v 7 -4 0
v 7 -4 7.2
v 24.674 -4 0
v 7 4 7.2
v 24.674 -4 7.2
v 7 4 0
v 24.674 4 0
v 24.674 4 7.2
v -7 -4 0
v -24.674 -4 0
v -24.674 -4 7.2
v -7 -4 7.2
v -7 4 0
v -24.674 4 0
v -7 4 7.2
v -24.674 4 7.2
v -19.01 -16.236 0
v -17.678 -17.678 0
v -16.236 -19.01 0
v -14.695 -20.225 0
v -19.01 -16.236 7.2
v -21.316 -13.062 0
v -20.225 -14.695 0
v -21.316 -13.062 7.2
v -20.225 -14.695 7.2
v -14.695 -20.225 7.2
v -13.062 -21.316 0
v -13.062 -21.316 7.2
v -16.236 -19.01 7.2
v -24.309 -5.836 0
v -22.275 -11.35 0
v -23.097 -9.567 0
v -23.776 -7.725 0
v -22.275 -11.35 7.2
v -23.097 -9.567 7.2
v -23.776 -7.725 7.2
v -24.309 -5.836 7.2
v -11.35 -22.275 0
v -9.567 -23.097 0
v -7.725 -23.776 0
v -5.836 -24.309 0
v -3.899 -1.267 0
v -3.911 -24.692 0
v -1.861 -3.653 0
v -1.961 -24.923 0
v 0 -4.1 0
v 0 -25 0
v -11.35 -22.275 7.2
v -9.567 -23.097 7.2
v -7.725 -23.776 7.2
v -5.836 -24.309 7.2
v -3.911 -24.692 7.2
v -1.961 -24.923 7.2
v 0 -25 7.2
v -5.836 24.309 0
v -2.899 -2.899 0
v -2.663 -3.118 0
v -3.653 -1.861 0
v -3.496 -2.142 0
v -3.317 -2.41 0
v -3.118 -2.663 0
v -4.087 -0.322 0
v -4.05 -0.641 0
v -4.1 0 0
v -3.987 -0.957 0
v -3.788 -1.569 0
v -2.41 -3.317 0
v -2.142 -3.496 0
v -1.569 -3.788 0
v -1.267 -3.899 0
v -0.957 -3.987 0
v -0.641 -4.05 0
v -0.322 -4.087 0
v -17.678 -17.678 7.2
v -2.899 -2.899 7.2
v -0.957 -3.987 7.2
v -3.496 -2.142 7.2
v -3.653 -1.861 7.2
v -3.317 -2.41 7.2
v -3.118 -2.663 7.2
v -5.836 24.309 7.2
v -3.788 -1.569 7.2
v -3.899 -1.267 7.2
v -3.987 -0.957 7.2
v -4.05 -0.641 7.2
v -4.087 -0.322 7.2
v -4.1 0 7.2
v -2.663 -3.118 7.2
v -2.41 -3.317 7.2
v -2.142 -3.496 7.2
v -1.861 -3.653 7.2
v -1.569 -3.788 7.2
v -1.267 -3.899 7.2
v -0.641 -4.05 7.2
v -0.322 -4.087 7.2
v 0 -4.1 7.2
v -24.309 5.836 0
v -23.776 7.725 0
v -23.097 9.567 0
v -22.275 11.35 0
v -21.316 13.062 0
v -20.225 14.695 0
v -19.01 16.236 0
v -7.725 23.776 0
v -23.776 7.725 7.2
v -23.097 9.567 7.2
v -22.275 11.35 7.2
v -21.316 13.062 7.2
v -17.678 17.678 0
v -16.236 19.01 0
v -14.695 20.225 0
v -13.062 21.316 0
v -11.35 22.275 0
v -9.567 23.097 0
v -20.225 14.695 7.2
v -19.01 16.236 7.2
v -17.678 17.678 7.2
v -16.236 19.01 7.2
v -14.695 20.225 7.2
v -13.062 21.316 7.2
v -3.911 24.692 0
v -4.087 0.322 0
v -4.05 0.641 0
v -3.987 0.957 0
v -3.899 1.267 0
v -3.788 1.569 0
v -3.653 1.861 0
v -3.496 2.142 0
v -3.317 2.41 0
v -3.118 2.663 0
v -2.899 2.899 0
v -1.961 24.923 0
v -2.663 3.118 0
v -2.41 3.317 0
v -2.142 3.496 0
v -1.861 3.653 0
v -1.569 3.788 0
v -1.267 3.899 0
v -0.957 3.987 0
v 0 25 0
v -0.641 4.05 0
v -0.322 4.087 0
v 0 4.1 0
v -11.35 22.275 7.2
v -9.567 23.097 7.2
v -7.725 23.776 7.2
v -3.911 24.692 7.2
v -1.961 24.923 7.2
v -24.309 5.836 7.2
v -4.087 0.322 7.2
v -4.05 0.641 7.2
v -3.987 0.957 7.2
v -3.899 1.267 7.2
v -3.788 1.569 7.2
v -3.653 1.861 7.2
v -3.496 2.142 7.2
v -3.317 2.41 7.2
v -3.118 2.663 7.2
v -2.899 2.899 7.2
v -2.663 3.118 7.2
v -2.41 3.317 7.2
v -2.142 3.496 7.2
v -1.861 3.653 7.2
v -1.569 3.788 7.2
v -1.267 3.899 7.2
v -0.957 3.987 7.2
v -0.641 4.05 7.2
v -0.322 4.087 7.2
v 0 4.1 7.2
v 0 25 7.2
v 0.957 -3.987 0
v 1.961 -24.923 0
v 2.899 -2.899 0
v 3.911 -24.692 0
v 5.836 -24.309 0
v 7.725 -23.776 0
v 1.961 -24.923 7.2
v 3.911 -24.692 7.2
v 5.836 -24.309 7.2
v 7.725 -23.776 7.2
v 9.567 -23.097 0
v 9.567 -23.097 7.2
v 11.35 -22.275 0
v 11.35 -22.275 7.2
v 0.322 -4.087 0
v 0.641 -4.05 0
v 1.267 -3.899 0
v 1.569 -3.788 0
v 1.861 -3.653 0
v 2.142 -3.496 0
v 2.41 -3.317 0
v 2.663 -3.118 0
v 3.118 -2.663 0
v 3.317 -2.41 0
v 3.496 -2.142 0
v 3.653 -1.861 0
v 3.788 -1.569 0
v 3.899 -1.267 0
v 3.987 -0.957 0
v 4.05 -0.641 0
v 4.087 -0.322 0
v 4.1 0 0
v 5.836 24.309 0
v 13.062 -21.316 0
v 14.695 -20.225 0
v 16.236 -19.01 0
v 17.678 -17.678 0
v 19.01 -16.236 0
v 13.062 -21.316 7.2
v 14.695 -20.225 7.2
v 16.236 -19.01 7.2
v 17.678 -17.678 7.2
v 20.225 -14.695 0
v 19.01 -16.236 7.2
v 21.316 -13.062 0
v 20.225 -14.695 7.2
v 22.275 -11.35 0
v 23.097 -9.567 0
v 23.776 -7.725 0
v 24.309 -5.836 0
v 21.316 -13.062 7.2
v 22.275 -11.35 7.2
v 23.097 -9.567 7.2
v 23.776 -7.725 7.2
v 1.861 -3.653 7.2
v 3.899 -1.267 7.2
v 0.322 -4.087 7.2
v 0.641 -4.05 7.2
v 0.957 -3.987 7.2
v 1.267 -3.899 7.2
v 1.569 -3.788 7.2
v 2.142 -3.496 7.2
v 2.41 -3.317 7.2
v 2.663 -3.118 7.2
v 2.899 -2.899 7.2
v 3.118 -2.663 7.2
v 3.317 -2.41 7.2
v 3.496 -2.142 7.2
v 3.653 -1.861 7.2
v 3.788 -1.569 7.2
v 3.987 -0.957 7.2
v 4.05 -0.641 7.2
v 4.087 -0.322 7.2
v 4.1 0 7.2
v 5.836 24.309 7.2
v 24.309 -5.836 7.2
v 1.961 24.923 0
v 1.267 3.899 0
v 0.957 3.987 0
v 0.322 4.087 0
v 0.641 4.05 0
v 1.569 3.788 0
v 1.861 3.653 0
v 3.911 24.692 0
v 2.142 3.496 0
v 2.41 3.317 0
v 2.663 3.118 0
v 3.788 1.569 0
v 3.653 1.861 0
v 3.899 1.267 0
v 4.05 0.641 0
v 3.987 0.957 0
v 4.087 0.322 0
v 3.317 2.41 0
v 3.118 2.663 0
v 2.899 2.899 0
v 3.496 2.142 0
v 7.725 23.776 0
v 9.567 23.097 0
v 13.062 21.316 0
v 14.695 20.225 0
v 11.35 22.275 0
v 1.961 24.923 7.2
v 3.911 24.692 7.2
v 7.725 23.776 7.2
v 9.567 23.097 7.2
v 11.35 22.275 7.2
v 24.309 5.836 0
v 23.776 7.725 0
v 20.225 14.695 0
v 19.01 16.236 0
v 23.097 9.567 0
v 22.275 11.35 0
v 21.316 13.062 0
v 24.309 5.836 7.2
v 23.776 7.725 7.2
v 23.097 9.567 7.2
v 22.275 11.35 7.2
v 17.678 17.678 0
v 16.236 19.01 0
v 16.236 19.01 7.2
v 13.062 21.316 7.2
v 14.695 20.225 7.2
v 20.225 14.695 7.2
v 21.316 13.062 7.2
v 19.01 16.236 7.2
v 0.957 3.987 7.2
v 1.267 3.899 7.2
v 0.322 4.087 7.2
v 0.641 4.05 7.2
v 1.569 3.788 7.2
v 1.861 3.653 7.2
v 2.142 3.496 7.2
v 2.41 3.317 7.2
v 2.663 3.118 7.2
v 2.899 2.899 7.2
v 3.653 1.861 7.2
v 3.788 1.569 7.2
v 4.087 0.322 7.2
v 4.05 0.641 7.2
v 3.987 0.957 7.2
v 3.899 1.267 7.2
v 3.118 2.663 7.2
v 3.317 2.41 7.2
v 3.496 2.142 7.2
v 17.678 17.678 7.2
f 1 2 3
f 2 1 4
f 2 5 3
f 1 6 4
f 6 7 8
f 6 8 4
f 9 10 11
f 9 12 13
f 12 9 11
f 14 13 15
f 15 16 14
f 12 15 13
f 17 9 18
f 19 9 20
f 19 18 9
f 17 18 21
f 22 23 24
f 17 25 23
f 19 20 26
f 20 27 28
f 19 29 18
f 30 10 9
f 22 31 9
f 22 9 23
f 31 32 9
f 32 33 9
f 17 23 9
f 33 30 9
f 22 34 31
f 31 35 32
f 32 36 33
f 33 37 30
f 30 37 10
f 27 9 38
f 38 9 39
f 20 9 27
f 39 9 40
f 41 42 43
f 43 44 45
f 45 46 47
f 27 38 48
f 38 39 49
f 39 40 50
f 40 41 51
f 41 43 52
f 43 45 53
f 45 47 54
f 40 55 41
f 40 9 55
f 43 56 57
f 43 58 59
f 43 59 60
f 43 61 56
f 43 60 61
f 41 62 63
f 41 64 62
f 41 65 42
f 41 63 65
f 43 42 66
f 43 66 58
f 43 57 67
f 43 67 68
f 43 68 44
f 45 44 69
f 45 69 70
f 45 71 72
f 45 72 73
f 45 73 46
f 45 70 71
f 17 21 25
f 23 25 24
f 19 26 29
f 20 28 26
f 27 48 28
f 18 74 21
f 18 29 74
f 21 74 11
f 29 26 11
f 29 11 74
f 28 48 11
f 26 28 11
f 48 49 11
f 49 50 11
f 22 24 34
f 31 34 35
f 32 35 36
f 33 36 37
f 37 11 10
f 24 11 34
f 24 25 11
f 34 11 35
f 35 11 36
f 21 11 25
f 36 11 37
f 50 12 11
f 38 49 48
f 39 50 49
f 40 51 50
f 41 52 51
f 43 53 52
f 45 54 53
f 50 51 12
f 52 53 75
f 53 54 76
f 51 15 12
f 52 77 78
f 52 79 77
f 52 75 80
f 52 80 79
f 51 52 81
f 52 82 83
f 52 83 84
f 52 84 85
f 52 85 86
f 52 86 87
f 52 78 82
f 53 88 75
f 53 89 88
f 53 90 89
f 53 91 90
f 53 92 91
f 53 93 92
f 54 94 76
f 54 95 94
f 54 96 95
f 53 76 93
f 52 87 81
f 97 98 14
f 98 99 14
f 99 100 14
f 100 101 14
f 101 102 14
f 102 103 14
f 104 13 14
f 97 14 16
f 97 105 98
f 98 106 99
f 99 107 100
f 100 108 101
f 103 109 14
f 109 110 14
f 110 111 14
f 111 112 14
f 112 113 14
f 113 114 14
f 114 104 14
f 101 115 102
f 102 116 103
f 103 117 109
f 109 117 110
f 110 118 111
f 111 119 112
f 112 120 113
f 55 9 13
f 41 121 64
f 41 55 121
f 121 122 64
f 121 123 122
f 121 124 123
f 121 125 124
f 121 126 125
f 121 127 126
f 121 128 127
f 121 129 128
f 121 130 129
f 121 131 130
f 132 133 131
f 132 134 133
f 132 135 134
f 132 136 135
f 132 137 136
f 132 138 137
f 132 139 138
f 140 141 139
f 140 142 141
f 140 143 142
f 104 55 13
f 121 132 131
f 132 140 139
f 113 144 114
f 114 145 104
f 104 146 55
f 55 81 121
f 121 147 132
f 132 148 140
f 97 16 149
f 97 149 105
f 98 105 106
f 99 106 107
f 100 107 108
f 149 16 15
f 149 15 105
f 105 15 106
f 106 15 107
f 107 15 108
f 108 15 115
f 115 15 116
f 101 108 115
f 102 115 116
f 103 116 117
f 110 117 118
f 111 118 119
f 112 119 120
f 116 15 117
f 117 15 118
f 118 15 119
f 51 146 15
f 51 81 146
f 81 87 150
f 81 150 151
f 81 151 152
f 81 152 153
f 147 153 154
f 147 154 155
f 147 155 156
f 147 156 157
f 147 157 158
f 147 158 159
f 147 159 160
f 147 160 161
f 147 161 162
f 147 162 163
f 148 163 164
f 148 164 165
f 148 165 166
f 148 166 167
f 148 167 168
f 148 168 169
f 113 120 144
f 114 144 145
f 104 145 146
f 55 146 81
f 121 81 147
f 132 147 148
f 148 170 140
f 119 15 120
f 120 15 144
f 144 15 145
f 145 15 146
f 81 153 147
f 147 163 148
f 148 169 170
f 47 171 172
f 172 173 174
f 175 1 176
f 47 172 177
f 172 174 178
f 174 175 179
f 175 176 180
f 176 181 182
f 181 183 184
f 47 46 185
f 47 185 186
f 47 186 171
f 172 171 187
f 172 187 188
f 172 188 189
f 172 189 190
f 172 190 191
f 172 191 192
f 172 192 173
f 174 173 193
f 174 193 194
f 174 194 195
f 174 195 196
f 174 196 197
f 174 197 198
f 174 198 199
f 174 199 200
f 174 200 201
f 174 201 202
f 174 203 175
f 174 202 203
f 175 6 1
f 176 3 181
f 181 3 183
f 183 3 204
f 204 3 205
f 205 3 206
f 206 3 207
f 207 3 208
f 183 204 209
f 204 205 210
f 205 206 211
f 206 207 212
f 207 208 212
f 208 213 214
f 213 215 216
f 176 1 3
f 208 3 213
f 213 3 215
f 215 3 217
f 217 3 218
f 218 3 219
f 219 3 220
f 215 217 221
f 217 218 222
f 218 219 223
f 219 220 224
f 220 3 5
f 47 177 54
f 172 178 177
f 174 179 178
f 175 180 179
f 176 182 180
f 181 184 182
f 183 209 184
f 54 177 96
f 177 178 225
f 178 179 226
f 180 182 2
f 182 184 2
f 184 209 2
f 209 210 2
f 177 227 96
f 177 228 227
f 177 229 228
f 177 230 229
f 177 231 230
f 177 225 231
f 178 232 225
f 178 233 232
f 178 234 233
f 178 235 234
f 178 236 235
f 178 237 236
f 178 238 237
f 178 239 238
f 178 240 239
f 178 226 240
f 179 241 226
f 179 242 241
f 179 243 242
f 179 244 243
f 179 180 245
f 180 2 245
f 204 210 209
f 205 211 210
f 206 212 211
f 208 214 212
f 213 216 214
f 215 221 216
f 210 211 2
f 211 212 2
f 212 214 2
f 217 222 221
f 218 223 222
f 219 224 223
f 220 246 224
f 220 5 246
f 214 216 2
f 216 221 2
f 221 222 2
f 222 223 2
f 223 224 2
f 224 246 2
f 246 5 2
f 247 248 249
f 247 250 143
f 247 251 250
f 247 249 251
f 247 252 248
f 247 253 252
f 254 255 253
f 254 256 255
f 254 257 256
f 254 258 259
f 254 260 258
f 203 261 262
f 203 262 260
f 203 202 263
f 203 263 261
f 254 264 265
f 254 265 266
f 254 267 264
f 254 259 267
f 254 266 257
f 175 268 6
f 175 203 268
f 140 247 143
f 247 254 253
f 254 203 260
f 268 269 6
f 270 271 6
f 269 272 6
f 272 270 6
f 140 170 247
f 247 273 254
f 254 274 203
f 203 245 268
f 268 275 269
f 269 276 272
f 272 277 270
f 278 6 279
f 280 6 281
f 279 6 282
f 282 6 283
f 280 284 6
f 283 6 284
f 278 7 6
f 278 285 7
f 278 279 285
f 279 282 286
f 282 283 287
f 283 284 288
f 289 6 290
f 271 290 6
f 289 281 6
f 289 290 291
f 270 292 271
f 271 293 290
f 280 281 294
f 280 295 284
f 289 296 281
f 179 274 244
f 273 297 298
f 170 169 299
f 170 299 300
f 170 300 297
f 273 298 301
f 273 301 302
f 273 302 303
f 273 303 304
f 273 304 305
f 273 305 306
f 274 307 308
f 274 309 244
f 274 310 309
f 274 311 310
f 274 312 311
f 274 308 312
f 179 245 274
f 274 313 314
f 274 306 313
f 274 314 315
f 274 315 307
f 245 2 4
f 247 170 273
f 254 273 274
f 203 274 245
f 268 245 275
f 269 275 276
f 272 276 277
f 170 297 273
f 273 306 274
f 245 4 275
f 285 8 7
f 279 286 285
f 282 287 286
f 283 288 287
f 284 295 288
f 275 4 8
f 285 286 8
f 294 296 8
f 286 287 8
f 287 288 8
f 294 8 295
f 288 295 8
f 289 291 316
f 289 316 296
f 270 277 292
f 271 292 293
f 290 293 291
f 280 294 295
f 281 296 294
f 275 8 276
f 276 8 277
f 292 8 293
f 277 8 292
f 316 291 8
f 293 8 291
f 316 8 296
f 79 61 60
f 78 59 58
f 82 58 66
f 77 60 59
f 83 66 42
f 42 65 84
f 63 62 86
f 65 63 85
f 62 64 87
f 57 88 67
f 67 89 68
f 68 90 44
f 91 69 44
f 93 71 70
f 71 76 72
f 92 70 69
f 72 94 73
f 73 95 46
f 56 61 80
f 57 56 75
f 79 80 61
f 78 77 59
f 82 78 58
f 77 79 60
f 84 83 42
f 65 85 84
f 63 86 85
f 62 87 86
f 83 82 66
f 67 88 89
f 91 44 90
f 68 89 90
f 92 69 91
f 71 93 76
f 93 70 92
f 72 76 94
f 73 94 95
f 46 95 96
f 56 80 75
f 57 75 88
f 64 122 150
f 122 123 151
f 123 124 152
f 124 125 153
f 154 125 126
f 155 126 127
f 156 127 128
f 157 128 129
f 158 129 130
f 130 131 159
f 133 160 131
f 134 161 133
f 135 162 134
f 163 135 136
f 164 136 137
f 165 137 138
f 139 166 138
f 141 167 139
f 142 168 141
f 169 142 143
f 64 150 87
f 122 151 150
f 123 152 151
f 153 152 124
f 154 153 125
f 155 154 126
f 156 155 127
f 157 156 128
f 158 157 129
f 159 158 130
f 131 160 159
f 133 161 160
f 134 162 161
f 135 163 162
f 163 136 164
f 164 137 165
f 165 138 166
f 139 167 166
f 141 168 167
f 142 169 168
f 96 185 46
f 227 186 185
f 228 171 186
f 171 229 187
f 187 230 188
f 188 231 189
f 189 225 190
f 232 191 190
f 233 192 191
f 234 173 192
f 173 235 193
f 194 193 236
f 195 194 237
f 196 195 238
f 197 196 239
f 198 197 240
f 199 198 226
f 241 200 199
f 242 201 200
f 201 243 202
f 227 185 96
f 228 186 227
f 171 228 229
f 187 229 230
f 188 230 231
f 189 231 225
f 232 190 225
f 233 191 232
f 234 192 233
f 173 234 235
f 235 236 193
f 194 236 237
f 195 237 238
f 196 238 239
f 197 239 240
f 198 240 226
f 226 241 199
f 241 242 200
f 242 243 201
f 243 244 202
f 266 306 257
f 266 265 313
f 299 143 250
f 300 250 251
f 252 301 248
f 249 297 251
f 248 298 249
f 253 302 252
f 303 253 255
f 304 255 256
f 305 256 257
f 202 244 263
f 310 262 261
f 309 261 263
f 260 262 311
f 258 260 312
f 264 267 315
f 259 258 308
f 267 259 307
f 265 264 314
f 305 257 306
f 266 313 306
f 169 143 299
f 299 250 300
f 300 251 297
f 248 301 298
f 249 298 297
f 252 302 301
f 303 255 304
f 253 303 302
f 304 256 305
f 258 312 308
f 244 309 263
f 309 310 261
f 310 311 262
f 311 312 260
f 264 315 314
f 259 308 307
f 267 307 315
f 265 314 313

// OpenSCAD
// ==============================================================================
//   HUB DISC — optional VARIANT of the hub clamshell (hub.scad): the
//   tri's washer-jaw hub sized for the dual's two arms. Print ONE.
//
//   One spacer disc thinner than the rod, a slot per arm from the
//   boss circle to the rim, arms butted against the boss and proud
//   of both faces by half the clamp gap. Two M8 fender washers press
//   directly on the rods from either side, clamped by M8 nylocs on
//   the shaft's die-threaded top end. Load path steel washer,
//   aluminum rod, steel washer: no plastic in compression, so this
//   joint never needs the seasonal re-torque, and disc plus M8 stack
//   weigh about a third of the clamshell plus its five M5s.
//
//   The price is the one rod prep in the build: an M8x1.25 hand die
//   run hub_shaft_thread down the shaft top (8 mm rod is an M8
//   thread blank, the die self-aligns, still nothing drilled), and
//   an arm station about 27 mm lower on the same shaft, which the
//   stack has room for (geometry_check gates the collar room).
//   Assembly: lower nyloc and washer to a thread-gauge height, disc
//   and arms on, upper washer and nyloc, done — the slot flanks key
//   the arms, the washers grip them.
//
//   Prints flat on its face in minutes: bore and slots are vertical
//   walls, no bridges, no supports.
// ==============================================================================

include <design_params.scad>

$fn = 80;

module hub_disc() {
    difference() {
        cylinder(h = hub_disc_h, d = hub_disc_d);
        // free over the thread crests; the washers do the locating
        translate([0, 0, -0.1])
            cylinder(h = hub_disc_h + 0.2, d = rod_free_d);
        // one full-height slot per arm, snug on the rod flanks, boss
        // circle to rim
        for (m = [0, 1]) mirror([m, 0, 0])
            translate([hub_disc_boss_d / 2, -rod_snug_d / 2, -0.1])
                cube([hub_disc_d / 2 - hub_disc_boss_d / 2 + 1,
                      rod_snug_d, hub_disc_h + 0.2]);
    }
}

hub_disc();
